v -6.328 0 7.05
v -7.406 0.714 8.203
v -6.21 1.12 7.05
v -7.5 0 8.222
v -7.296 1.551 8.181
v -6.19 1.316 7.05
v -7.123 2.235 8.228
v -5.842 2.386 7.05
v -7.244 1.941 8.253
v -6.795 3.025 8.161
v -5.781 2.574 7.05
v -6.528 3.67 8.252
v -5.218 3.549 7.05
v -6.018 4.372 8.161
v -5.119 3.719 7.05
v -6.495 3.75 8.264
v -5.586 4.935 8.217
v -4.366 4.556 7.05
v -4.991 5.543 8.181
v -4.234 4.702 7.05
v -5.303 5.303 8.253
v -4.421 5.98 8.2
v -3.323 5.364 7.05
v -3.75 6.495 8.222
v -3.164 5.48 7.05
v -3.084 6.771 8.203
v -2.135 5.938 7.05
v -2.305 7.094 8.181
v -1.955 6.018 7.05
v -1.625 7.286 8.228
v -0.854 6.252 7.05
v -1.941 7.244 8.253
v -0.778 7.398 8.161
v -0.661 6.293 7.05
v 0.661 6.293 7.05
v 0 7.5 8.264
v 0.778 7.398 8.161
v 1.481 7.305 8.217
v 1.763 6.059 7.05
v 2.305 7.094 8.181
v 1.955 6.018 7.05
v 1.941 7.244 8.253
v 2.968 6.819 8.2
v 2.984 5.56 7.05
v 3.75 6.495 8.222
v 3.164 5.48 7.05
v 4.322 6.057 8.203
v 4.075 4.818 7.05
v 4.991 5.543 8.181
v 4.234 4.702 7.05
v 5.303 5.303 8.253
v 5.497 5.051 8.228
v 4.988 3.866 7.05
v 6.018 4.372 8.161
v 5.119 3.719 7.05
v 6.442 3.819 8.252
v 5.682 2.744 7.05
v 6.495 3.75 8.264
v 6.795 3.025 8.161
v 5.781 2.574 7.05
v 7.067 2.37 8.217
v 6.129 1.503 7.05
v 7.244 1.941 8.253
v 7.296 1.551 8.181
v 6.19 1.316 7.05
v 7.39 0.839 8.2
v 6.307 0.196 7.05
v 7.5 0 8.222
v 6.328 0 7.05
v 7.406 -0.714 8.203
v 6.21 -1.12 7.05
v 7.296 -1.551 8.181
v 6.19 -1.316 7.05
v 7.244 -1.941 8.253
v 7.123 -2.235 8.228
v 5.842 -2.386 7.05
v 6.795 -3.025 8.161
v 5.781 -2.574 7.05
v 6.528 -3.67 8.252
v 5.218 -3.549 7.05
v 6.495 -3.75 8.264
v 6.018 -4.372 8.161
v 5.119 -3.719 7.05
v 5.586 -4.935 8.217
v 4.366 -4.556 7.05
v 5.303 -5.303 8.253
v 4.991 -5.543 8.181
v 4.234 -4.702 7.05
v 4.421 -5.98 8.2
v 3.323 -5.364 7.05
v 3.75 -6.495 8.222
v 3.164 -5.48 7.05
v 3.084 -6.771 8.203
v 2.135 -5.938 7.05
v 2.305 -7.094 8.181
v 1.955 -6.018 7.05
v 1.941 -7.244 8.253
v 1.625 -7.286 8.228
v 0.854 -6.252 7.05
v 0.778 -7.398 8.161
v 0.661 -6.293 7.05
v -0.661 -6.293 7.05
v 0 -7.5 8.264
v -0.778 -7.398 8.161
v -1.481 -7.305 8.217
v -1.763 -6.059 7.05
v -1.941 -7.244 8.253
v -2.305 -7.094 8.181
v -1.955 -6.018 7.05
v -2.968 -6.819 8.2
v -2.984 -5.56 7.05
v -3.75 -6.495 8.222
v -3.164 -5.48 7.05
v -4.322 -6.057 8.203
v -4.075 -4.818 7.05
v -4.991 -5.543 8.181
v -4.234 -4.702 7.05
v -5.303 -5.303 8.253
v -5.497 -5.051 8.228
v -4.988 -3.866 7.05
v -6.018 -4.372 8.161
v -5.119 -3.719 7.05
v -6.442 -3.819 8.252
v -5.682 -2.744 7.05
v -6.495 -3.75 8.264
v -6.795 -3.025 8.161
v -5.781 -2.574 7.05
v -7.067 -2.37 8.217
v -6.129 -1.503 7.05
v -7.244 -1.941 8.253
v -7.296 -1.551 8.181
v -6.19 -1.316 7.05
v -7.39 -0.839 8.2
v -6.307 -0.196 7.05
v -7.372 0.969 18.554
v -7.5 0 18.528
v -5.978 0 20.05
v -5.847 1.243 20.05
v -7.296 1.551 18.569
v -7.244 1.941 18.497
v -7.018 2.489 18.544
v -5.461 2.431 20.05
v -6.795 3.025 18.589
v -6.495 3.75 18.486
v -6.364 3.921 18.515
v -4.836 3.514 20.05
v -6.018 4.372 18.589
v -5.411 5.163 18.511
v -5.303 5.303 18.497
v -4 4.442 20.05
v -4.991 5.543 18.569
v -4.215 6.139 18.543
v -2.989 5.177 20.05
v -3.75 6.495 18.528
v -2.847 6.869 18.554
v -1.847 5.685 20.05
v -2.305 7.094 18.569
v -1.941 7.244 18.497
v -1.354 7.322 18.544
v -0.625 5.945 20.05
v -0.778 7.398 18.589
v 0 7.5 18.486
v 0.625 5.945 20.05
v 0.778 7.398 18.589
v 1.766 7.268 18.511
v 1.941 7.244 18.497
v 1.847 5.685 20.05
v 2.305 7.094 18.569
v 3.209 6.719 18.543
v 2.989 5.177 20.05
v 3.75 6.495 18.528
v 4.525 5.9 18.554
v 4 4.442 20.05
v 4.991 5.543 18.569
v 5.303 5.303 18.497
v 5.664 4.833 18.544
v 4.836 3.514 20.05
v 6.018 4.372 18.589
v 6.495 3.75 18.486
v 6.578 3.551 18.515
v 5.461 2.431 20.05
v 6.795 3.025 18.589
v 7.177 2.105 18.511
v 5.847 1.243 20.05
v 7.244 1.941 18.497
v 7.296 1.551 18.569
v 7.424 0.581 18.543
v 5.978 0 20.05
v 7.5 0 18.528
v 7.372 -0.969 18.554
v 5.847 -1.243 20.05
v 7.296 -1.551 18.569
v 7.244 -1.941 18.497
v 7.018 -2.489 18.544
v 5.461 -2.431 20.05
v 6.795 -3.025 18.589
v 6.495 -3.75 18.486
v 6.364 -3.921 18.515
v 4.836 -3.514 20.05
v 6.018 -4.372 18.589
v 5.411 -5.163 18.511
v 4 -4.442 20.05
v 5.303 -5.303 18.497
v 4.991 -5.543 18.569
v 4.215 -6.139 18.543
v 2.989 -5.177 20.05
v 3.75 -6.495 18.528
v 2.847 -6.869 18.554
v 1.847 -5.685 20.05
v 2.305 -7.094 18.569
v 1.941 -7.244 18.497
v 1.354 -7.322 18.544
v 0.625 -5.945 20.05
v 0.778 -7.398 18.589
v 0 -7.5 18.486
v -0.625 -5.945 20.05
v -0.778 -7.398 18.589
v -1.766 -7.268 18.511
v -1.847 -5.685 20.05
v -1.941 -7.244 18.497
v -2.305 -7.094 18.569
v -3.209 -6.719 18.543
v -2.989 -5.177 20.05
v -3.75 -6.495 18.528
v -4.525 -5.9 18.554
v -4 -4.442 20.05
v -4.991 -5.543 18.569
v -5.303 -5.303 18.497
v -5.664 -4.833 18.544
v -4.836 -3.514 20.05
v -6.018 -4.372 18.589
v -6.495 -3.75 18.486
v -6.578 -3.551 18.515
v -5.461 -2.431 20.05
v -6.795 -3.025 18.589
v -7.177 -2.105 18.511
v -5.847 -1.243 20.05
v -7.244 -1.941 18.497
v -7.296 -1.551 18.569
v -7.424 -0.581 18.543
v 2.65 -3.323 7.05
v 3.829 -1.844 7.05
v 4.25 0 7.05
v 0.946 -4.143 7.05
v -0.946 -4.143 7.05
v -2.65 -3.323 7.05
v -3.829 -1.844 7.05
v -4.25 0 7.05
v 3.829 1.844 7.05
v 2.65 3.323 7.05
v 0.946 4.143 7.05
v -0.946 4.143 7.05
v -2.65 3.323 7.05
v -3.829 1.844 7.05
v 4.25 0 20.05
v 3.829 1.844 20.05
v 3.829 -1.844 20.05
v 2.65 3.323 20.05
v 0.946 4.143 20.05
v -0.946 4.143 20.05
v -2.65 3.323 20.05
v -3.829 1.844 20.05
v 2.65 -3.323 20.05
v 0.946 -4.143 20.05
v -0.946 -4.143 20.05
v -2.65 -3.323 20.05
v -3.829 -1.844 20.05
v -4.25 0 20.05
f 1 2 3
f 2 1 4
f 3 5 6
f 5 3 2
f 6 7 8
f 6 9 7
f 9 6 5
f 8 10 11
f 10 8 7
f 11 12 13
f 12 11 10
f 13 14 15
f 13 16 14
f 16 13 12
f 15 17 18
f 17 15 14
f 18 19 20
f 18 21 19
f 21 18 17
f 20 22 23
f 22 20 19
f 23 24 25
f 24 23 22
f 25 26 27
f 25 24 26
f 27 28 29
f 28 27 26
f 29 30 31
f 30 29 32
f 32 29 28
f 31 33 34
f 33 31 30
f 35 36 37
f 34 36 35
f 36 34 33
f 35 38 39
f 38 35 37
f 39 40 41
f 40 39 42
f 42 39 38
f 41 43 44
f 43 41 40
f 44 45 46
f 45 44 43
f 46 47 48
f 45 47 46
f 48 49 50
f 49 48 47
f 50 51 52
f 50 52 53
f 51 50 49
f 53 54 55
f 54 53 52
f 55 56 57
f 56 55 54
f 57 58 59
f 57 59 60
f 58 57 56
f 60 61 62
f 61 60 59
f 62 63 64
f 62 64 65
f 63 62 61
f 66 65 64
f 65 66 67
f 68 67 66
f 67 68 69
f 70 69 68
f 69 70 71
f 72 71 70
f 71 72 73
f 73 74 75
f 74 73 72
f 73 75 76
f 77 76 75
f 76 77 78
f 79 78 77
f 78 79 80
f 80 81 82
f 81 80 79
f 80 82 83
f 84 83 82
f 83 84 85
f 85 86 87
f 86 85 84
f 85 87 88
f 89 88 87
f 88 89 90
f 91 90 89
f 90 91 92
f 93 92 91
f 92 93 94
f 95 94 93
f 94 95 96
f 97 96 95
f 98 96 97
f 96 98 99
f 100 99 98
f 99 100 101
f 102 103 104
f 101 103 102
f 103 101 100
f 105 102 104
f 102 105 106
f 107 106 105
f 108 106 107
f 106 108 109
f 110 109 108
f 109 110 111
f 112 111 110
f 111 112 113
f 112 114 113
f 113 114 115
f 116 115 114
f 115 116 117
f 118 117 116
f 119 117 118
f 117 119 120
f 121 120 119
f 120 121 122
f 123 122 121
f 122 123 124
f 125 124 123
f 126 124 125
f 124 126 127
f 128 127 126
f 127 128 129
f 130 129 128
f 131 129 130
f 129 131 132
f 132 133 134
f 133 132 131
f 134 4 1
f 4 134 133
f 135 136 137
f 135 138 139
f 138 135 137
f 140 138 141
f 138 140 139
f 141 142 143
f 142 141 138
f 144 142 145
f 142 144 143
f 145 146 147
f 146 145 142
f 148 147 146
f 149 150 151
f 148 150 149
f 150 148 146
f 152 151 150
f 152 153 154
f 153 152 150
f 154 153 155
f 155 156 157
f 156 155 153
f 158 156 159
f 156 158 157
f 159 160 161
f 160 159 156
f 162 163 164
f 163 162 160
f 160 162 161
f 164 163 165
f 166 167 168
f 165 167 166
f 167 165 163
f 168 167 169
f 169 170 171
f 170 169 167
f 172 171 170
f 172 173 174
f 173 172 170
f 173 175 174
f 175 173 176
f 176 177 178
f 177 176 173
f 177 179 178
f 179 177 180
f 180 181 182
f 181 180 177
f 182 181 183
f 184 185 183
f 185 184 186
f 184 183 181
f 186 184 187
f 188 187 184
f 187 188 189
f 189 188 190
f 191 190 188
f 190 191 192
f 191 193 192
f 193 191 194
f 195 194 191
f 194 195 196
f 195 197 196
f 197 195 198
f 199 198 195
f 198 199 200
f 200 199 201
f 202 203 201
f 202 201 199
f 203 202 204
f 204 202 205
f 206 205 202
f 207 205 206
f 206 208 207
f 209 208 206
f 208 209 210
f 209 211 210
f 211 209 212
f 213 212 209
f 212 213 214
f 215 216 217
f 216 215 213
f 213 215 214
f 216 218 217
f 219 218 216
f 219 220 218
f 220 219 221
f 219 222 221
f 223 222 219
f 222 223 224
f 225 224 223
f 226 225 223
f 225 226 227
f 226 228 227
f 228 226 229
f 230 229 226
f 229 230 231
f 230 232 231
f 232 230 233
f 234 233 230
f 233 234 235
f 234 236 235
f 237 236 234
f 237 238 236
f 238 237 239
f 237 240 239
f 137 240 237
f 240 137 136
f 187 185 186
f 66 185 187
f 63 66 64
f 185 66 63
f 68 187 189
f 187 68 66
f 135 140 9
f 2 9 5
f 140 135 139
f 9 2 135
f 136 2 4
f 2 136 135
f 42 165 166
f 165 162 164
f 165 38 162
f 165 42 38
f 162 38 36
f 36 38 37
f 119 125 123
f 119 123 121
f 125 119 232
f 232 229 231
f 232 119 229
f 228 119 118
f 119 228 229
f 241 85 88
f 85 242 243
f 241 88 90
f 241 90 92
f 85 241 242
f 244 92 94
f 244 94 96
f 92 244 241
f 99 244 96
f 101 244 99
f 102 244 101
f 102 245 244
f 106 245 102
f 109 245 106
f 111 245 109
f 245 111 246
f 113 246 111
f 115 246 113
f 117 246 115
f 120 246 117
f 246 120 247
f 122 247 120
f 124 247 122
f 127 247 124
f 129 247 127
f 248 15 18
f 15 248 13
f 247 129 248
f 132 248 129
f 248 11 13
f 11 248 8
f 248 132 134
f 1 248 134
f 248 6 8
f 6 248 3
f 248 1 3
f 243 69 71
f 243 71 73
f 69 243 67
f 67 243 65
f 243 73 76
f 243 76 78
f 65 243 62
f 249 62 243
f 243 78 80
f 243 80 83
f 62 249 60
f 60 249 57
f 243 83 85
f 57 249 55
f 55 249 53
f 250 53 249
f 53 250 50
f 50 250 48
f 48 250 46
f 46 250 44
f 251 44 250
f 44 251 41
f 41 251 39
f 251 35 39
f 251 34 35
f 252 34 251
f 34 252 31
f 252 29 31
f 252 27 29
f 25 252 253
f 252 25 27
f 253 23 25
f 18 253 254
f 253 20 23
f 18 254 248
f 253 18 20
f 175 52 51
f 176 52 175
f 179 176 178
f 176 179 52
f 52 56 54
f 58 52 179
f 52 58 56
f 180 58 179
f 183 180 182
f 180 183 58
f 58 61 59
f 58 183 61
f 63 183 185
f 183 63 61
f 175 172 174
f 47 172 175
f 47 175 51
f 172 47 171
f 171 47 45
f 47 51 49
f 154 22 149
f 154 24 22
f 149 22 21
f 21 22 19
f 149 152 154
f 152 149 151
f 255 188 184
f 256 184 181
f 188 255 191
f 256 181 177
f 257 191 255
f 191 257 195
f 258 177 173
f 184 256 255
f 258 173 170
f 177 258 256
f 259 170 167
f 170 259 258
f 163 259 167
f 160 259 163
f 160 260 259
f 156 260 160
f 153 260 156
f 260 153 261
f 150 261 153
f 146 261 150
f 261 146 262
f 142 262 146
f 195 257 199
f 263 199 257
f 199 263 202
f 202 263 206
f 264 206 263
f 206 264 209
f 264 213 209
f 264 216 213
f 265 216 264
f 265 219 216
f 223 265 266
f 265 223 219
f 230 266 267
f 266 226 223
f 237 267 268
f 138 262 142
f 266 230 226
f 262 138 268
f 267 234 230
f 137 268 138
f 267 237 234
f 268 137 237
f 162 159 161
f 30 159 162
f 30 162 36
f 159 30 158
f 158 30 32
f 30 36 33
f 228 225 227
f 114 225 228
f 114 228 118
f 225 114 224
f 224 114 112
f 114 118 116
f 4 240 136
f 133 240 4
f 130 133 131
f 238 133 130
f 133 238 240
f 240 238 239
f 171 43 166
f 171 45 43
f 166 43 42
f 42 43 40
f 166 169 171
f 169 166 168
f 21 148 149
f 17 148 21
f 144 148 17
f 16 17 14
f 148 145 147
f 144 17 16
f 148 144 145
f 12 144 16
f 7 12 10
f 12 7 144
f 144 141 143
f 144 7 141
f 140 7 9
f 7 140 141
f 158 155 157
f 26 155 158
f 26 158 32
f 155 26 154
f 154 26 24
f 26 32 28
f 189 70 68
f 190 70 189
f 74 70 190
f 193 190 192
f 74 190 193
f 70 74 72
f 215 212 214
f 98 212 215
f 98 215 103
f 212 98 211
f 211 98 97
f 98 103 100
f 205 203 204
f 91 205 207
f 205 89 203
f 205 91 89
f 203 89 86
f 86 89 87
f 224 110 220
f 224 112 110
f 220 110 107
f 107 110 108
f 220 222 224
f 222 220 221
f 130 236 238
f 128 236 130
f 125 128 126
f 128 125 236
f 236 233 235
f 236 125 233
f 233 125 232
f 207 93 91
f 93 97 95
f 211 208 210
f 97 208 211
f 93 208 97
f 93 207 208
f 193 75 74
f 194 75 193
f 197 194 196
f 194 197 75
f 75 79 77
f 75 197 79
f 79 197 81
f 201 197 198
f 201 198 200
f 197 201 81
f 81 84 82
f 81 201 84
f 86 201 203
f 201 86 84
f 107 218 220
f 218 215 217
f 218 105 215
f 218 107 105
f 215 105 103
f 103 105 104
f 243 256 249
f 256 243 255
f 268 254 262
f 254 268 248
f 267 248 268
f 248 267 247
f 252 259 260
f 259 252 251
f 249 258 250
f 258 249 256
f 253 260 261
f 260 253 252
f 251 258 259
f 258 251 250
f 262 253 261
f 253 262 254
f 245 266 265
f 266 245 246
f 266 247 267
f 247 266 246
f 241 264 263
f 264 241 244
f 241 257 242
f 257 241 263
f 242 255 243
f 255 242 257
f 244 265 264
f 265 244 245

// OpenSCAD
// file: parameters.scad
// Parameters shared between modules
Base_th = 4;
Beam_width = 15;
Wiggle = 0.25;
Fat_beam_width = Beam_width + Wiggle;
Beam_length = 400;
Wall_th = 2.5;
Min_beam_width = 12.5;
Max_beam_width = 17.5;
Zip_th = 2;
Zip_h = Zip_th + Max_beam_width - Min_beam_width;
Zip_w = 5.0;
Nema17_cube_width          = 42.43;
Nema17_screw_hole_width    = 43.74; // Opposite corner screws
Nema17_ring_diameter       = 22;
Nema17_cube_height         = 39.36;
Nema17_shaft_height        = 63.65;
Nema17_ring_height         = 2;
Nema17_shaft_radius        = 5/2;
b608_outer_dia = 22.2;
b608_width = 7.05;
Gap_between_sandwich_and_plate = 1.5 + Base_th; // 1.5 mm for wiggle
Motor_bracket_flerp_r = 6;
Motor_bracket_flerp = 14;
Motor_bracket_cw = Nema17_cube_width + 6;
Motor_bracket_att_ang = 50;
Mounting_screw_d = 4.5;
Mounting_screw_head_d = 14;
Spool_outer_wall_th = 4;

// Corner clamp parameters
Cc_l1 = (Fat_beam_width+2*Wall_th)*2*sqrt(3);
Cc_rad_b = 4;
Cc_action_point_from_mid = Cc_l1/sqrt(3)-2*Cc_rad_b-1.3;  // 1.3 chosen arbitrarily
Cc_plastic_length = sqrt(Cc_action_point_from_mid*Cc_action_point_from_mid
                       - (Cc_action_point_from_mid/2)*(Cc_action_point_from_mid/2));

// The distance between the two action points on the mover
Sidelength = Beam_length + 2*Cc_plastic_length;

/////// Layout parameters ////////////
Ext_sidelength = Sidelength+77;
Additional_added_plate_side_length = 10;
Yshift_top_plate = -25;

/////// Gear parameters ////////////
Circular_pitch = 262;
Motor_teeth = 10;
Gear_height = 21.4-3;
Motor_pitch                      = (Motor_teeth*Circular_pitch/360);
Motor_pitch_diametrial           = Motor_teeth/(2*Motor_pitch);
Motor_outer_radius               = Motor_pitch + 1/Motor_pitch_diametrial;
Spool_teeth = 100;
Spool_r = 65;
Spool_height = 8;
Spool_pitch                      = (Spool_teeth*Circular_pitch/360);
Spool_pitch_diametrial           = Spool_teeth/(2*Spool_pitch);
Spool_outer_radius               = Spool_pitch + 1/Spool_pitch_diametrial;
Sep_disc_radius = 161.83/2; // Made to match 255 teeth gt2 pulley
Motor_bracket_depth = Gear_height+1+7+Nema17_ring_height+1+Gap_between_sandwich_and_plate;
Spool_core_flerp0 = 16+3;

/////// Lineroller parameters ////////////
b623_width  = 4;
b623_bore_r = 3/2;
b623_vgroove_big_r = 12/2;
b623_vgroove_small_r = 10/2;
b623_outer_dia = 10;
Lineroller_wall_th = 2.3;


// The height that lineroller_ABC_winch will have if we include the bearing
Tower_h = Gap_between_sandwich_and_plate+Gear_height
         + Spool_height/2
         + b623_vgroove_small_r
         + b623_vgroove_big_r;
Bearing_wall = 1;
Depth_of_lineroller_tower = b623_width + 2*Wall_th; // 9
Depth_of_lineroller_base = Depth_of_lineroller_tower + 9; // 18
Ptfe_r = 2.1;
Lineroller_base_r = 8;
Screw_h = 2;
Screw_head_h = 2;
Spool_center_bearing_wall_th = 5;
Corner_clamp_bearings_center_to_center = 15;
Anchor_bearings_center_to_center = Corner_clamp_bearings_center_to_center + b623_outer_dia;

//// Lineroller anchor parameters /////

Bearing_0_x = 2*b623_vgroove_big_r+Bearing_wall+5.3;
Bearing_1_x = b623_vgroove_small_r-0.9;
Move_tower = -12.2;
Lower_bearing_z = 13;
Higher_bearing_z = Lower_bearing_z + Corner_clamp_bearings_center_to_center;


//// Donkey and encoder parameters /////

Donkey_shaft_d = 6;
Donkey_h = 65.12;
Donkey_body_d = 50;
Donkey_feet_th = 3.5;

Encoder_LDP3806_shaft_d = 6;
Encoder_LDP3806_d = 38;


//// Cable Clamp parameters /////
Bit_width = 12;
Cable_r=2.5;

GT2_belt_width = 6;
GT2_gear_height = GT2_belt_width + 2;
GT2_spool_gear_teeth = 252;
GT2_teeth = 255;
GT2_tensioner_h = 36;
Torx_depth = GT2_gear_height/2;
// main file
include <parameters.scad>

sandwich_height = Spool_height+0.7+Gear_height;

module import_the_sandiwch(){
  translate([0,0,0.1])
  import("../stl/spool_gear.stl");
  translate([0,0,sandwich_height])
    rotate([0,180,0])
      import("../stl/spool.stl");
}

spacer();
module spacer(){
  difference(){
    translate([0,0,b608_width])
      cylinder(d=15, h=sandwich_height-2*b608_width);
    cylinder(d=8.5, h=sandwich_height);
    // Phase in/out
    p = 6.7;
    for(k=[0,1]){
      translate([0,0,p-k*p+k*(sandwich_height-b608_width)])
        rotate_extrude(angle=360, convexity=5)
          translate([Motor_pitch-1.3,0])
            rotate([0,0,-45])
              square([4,5]);
    }
  }
}
